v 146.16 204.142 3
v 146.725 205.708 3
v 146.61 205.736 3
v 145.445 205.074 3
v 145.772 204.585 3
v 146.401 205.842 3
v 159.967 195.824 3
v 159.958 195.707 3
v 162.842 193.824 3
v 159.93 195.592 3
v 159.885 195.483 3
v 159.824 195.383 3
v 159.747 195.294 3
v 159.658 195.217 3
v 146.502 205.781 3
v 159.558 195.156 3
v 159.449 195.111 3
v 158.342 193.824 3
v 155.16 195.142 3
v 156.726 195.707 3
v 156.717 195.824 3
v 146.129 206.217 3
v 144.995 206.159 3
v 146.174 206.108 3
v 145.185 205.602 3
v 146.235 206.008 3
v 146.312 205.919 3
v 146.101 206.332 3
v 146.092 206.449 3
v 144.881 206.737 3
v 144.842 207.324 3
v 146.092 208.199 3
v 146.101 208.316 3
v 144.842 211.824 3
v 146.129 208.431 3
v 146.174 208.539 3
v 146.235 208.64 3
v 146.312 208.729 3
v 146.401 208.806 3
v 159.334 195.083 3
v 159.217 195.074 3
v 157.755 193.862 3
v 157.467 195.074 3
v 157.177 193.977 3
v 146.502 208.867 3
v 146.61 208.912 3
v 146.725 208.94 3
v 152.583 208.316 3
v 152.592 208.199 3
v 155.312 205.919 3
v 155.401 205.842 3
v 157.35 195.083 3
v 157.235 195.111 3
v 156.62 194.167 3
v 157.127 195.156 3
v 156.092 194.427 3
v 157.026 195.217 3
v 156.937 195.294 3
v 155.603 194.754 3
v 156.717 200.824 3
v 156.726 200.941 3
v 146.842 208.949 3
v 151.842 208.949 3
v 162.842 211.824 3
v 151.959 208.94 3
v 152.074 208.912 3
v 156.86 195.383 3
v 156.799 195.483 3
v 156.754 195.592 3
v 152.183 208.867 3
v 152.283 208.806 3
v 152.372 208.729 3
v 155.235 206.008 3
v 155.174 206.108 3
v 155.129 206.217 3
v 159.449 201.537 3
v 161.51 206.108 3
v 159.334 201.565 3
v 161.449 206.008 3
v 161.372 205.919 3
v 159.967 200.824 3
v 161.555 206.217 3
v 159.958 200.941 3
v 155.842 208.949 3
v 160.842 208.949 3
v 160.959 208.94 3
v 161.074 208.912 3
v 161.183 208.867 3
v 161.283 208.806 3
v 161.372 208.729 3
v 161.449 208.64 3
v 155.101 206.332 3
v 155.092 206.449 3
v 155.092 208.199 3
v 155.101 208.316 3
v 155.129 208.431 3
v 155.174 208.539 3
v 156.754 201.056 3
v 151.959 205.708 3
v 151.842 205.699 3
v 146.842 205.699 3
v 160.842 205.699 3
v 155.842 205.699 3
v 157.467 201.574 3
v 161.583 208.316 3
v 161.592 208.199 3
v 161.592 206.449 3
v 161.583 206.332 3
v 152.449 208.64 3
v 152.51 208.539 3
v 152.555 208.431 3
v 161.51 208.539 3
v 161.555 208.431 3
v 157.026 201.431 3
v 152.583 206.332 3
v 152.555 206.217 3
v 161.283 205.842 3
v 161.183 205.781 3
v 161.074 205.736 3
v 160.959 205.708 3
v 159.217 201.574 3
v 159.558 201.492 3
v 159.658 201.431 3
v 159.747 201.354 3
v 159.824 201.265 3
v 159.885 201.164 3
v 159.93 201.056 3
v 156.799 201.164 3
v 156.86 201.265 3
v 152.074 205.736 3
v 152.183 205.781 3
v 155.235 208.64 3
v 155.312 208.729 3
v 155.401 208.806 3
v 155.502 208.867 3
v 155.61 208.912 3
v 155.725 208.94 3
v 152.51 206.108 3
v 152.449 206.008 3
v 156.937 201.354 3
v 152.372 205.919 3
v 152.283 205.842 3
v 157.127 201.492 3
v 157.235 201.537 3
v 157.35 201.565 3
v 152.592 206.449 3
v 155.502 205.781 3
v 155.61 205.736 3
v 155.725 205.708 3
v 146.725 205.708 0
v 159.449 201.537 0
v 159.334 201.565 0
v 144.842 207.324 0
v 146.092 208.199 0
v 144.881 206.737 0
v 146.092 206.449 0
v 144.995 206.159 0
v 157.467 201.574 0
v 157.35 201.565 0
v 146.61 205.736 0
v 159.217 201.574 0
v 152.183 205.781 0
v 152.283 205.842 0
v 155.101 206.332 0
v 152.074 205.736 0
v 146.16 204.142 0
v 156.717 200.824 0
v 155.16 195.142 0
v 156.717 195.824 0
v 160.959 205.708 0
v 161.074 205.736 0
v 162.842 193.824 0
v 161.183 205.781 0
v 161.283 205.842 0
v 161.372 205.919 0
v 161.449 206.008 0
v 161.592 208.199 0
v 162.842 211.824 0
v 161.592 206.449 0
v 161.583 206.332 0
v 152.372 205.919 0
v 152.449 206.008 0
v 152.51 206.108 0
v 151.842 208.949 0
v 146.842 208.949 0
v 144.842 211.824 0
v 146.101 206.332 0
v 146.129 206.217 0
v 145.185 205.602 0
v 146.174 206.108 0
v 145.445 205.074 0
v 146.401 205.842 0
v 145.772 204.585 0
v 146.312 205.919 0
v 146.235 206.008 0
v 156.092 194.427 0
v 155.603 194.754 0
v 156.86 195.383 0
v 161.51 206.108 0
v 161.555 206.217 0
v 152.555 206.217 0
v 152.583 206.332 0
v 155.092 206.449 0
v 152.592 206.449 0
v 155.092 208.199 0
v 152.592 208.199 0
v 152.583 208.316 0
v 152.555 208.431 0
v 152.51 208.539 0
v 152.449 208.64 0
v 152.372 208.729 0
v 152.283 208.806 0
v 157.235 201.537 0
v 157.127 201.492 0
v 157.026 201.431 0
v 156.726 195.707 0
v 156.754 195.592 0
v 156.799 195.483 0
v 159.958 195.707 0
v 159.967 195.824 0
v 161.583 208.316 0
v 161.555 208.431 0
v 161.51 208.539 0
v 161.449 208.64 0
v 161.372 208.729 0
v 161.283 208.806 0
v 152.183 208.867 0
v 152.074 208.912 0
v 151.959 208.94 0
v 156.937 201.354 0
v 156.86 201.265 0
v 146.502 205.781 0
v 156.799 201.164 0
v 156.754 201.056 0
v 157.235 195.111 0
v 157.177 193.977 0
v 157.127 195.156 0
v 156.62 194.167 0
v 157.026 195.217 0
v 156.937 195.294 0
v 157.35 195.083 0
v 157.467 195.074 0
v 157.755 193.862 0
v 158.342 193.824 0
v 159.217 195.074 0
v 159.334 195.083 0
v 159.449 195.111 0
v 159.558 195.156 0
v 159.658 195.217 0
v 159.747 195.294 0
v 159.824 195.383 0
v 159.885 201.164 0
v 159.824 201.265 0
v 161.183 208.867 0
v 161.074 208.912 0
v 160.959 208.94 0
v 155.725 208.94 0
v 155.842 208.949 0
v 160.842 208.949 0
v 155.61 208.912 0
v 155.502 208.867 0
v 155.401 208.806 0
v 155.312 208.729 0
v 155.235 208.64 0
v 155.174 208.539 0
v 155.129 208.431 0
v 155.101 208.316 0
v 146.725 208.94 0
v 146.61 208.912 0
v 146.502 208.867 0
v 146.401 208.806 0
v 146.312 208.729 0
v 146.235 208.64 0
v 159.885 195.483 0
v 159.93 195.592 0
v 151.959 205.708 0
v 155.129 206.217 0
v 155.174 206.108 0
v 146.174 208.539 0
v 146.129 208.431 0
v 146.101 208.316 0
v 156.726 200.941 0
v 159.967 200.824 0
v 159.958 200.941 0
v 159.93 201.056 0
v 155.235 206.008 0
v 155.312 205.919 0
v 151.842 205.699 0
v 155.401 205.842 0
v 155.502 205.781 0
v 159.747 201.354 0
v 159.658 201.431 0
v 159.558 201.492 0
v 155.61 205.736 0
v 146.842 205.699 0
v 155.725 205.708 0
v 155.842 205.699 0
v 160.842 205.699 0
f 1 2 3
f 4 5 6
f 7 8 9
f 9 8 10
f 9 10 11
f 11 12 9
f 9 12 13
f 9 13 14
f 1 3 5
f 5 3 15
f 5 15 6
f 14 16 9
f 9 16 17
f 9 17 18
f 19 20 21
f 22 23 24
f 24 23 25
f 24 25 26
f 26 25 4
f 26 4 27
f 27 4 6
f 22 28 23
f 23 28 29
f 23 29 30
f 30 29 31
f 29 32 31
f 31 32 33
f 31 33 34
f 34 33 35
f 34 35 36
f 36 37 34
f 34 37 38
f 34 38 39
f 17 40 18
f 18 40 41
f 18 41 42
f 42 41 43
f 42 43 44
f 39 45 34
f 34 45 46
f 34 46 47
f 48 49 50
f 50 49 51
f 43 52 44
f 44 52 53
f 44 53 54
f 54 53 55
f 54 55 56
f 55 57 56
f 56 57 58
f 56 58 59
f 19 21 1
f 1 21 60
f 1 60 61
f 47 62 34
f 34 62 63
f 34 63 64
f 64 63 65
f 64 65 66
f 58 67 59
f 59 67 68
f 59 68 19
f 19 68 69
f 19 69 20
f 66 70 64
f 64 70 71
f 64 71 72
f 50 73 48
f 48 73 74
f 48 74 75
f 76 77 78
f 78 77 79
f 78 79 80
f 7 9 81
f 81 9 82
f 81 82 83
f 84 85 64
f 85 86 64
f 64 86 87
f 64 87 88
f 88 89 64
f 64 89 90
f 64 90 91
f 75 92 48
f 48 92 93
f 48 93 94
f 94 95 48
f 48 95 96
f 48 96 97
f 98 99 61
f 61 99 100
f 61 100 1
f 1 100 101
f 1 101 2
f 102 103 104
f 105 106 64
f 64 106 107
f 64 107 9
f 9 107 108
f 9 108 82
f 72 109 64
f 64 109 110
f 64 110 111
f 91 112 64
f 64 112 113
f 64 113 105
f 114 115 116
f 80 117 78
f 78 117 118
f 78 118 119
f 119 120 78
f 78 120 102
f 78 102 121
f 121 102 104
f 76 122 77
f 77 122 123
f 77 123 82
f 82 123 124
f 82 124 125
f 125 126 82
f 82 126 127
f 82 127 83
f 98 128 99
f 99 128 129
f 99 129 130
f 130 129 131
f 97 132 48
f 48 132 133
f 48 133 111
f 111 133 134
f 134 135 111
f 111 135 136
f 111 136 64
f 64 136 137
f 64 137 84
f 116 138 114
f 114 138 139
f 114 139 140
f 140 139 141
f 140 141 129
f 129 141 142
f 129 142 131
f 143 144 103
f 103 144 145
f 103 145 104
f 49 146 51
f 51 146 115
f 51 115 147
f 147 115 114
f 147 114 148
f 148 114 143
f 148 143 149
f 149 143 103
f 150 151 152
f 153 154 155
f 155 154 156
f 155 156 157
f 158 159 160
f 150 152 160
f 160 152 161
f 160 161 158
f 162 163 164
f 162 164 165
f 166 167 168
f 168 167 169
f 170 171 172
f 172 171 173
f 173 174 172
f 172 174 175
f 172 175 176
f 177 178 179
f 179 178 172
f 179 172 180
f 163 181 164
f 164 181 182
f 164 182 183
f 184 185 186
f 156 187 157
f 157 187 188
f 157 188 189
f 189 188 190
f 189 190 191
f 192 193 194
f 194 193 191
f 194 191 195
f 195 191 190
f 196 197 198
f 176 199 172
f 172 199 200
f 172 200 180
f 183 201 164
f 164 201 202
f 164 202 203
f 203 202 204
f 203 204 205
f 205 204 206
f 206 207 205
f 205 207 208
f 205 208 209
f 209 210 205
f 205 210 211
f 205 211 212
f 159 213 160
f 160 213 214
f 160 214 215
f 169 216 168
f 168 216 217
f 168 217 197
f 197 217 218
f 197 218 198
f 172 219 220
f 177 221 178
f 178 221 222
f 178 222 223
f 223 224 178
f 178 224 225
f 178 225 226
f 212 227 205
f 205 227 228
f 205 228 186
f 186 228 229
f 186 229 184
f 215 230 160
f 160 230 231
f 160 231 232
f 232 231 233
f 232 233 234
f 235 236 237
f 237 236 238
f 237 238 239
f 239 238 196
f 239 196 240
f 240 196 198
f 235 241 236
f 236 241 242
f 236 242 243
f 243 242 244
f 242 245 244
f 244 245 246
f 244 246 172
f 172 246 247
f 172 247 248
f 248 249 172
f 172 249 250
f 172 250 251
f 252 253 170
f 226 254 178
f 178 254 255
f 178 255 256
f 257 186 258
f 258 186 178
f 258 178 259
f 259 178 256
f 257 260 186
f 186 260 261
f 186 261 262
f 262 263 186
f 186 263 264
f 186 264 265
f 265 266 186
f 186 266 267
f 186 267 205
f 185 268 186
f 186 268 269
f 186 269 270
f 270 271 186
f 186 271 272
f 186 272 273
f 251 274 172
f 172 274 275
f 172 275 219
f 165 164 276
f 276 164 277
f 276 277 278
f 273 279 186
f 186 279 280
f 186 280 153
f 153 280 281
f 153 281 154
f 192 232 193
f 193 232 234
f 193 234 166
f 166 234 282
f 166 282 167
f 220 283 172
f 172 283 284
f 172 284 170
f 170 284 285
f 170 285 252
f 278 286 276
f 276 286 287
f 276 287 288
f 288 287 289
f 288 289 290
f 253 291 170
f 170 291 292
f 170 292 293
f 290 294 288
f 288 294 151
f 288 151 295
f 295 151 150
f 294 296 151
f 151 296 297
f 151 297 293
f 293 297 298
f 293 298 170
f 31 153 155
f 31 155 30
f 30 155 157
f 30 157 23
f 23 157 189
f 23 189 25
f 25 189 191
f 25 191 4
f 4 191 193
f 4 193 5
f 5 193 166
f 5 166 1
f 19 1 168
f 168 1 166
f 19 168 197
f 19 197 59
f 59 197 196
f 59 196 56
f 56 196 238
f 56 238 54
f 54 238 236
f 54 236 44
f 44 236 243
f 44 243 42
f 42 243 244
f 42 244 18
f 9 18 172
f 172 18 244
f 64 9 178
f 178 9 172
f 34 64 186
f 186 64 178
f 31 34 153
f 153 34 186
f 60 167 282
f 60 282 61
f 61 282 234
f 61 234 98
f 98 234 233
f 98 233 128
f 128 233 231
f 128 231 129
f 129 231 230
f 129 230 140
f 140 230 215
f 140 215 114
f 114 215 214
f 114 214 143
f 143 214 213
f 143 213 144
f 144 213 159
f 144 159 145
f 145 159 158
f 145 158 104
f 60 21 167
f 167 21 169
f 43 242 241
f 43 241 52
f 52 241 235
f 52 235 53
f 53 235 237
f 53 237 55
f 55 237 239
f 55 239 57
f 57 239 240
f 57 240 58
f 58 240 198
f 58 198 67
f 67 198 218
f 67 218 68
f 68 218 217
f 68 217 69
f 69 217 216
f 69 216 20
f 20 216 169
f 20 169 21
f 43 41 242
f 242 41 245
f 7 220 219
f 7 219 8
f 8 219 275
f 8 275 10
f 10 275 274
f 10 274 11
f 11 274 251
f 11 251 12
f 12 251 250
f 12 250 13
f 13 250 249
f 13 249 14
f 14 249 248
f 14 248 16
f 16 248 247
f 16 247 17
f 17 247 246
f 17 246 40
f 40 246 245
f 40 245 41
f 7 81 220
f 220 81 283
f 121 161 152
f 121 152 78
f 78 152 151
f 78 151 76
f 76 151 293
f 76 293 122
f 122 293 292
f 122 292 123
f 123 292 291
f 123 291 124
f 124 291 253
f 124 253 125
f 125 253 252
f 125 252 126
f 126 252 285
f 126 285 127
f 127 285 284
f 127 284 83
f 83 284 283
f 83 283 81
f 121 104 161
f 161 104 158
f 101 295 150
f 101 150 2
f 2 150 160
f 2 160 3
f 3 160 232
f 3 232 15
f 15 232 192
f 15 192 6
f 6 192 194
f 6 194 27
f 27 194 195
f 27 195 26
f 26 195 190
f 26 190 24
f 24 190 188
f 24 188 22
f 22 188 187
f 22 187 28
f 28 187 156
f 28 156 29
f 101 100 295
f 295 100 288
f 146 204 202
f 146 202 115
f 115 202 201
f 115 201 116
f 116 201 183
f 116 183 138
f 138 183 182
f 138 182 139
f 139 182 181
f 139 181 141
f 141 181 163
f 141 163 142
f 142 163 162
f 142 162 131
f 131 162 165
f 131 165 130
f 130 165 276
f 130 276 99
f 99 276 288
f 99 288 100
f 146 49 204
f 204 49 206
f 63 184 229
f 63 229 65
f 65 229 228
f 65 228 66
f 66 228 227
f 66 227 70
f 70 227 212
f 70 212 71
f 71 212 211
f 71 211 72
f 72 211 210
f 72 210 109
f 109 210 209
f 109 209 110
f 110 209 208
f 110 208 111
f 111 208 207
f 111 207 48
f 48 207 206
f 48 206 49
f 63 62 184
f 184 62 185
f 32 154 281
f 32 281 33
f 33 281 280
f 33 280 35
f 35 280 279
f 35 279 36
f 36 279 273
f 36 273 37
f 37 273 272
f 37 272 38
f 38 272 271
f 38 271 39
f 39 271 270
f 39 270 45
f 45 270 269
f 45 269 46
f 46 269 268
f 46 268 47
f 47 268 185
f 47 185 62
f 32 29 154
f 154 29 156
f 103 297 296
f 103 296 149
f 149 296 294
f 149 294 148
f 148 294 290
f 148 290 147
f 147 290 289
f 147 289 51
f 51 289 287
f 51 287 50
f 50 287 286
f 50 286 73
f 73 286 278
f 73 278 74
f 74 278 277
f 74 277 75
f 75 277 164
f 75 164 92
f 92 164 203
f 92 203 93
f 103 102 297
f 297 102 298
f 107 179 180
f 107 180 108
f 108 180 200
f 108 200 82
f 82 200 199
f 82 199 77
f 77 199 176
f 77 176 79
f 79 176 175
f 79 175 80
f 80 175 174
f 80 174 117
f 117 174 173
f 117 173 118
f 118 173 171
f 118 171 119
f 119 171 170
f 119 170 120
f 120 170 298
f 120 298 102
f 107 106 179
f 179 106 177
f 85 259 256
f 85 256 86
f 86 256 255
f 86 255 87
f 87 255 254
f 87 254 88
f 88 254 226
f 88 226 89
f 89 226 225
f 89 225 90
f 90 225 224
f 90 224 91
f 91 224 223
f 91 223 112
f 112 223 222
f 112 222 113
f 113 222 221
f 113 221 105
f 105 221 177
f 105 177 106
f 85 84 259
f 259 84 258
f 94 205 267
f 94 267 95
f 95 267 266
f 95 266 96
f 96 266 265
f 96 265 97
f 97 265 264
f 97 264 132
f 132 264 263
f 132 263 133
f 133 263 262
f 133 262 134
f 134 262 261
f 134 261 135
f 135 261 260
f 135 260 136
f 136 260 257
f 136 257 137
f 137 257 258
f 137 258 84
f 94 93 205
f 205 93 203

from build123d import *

# Parameters (mm, degrees)
SALIENTE_EXTRUIR1_DEPTH = 3


with BuildPart() as part:
    # Model → Saliente-Extruir1 (new body)
    with BuildSketch(Plane.XY):
        with BuildLine():
            Line((149.34213351, 211.823953209), (158.34213351, 211.823953209))
            Line((158.34213351, 211.823953209), (162.84213351, 211.823953209))
            Line((162.84213351, 211.823953209), (162.84213351, 198.323953209))
            Line((162.84213351, 198.323953209), (162.84213351, 193.823953209))
            Line((162.84213351, 193.823953209), (158.34213351, 193.823953209))
            ThreePointArc((158.34213351, 193.823953209), (156.620058064, 194.166495313), (155.160152994, 195.141972694))
            Line((155.160152994, 195.141972694), (146.160152994, 204.141972694))
            ThreePointArc((146.160152994, 204.141972694), (145.184675613, 205.601877763), (144.84213351, 207.323953209))
            Line((144.84213351, 207.323953209), (144.84213351, 211.823953209))
            Line((144.84213351, 211.823953209), (149.34213351, 211.823953209))
        make_face()
        with BuildLine():
            Line((156.71713351, 195.823953209), (156.71713351, 200.823953209))
            ThreePointArc((156.71713351, 200.823953209), (156.936803424, 201.354283295), (157.46713351, 201.573953209))
            Line((157.46713351, 201.573953209), (159.21713351, 201.573953209))
            ThreePointArc((159.21713351, 201.573953209), (159.747463595, 201.354283295), (159.96713351, 200.823953209))
            Line((159.96713351, 200.823953209), (159.96713351, 195.823953209))
            ThreePointArc((159.96713351, 195.823953209), (159.747463595, 195.293623123), (159.21713351, 195.073953209))
            Line((159.21713351, 195.073953209), (157.46713351, 195.073953209))
            ThreePointArc((157.46713351, 195.073953209), (156.936803424, 195.293623123), (156.71713351, 195.823953209))
        make_face(mode=Mode.SUBTRACT)
        with BuildLine():
            Line((151.84213351, 205.698953209), (146.84213351, 205.698953209))
            ThreePointArc((146.84213351, 205.698953209), (146.311803424, 205.918623123), (146.09213351, 206.448953209))
            Line((146.09213351, 206.448953209), (146.09213351, 208.198953209))
            ThreePointArc((146.09213351, 208.198953209), (146.311803424, 208.729283295), (146.84213351, 208.948953209))
            Line((146.84213351, 208.948953209), (151.84213351, 208.948953209))
            ThreePointArc((151.84213351, 208.948953209), (152.372463595, 208.729283295), (152.59213351, 208.198953209))
            Line((152.59213351, 208.198953209), (152.59213351, 206.448953209))
            ThreePointArc((152.59213351, 206.448953209), (152.372463595, 205.918623123), (151.84213351, 205.698953209))
        make_face(mode=Mode.SUBTRACT)
        with BuildLine():
            Line((160.84213351, 205.698953209), (155.84213351, 205.698953209))
            ThreePointArc((155.84213351, 205.698953209), (155.311803424, 205.918623123), (155.09213351, 206.448953209))
            Line((155.09213351, 206.448953209), (155.09213351, 208.198953209))
            ThreePointArc((155.09213351, 208.198953209), (155.311803424, 208.729283295), (155.84213351, 208.948953209))
            Line((155.84213351, 208.948953209), (160.84213351, 208.948953209))
            ThreePointArc((160.84213351, 208.948953209), (161.372463595, 208.729283295), (161.59213351, 208.198953209))
            Line((161.59213351, 208.198953209), (161.59213351, 206.448953209))
            ThreePointArc((161.59213351, 206.448953209), (161.372463595, 205.918623123), (160.84213351, 205.698953209))
        make_face(mode=Mode.SUBTRACT)
    extrude(amount=SALIENTE_EXTRUIR1_DEPTH)


solid = part.part
